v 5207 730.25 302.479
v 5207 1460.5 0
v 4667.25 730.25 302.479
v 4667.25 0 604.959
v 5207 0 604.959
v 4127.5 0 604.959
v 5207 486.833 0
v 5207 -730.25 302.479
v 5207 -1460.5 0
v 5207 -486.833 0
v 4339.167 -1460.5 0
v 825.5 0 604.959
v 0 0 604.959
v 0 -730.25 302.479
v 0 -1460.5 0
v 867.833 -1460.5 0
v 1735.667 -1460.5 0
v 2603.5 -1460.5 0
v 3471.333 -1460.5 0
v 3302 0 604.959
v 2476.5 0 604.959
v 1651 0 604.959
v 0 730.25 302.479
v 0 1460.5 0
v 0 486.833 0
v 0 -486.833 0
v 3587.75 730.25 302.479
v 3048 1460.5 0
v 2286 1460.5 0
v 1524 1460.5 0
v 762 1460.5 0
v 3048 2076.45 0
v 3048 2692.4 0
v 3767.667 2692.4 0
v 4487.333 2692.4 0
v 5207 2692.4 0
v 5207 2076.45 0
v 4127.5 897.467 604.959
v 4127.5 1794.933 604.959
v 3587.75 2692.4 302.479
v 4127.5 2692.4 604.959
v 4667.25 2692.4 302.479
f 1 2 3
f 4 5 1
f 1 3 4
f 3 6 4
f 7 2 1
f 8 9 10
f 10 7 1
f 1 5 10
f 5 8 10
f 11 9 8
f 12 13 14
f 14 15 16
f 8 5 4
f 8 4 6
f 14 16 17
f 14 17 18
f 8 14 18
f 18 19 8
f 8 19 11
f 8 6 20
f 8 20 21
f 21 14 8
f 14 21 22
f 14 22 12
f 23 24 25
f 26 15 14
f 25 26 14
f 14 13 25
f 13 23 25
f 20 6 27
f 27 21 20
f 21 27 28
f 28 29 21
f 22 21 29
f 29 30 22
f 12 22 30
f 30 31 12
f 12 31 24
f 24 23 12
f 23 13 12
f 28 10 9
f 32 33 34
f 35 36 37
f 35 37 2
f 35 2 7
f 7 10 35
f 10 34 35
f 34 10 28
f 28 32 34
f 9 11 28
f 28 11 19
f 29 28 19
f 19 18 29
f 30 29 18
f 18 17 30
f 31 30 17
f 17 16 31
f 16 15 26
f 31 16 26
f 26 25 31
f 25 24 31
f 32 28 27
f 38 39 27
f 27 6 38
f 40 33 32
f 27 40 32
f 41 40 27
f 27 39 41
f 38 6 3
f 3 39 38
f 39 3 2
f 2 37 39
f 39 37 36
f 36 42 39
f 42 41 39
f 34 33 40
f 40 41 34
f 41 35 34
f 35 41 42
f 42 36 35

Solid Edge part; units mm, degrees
sketch "Sketch1" plane through (0, 0, 0) normal (1, 0, 0) x (0, 1, 0)
  line L0 (-1460.5, 0) -> (1460.5, 0)
  line L1 (1460.5, 0) -> (0, 604.9589)
  line L2 (0, 604.9589) -> (-1460.5, 0)
  dimension "D1" = 2921
extrude "Protrusion1" add sketch "Sketch1" along normal blind 5207
sketch "Sketch2" plane through (0, 0, 0) normal (0, -1, 0) x (1, 0, 0)
  line L0 (3048, 0) -> (4127.5, 604.9589)
  line L1 (4127.5, 604.9589) -> (5207, 0)
  line L2 (5207, 0) -> (3048, 0)
  dimension "D1" = 2159
extrude "ExtrudedProtrusion_2" add sketch "Sketch2" against normal blind 2692.4
